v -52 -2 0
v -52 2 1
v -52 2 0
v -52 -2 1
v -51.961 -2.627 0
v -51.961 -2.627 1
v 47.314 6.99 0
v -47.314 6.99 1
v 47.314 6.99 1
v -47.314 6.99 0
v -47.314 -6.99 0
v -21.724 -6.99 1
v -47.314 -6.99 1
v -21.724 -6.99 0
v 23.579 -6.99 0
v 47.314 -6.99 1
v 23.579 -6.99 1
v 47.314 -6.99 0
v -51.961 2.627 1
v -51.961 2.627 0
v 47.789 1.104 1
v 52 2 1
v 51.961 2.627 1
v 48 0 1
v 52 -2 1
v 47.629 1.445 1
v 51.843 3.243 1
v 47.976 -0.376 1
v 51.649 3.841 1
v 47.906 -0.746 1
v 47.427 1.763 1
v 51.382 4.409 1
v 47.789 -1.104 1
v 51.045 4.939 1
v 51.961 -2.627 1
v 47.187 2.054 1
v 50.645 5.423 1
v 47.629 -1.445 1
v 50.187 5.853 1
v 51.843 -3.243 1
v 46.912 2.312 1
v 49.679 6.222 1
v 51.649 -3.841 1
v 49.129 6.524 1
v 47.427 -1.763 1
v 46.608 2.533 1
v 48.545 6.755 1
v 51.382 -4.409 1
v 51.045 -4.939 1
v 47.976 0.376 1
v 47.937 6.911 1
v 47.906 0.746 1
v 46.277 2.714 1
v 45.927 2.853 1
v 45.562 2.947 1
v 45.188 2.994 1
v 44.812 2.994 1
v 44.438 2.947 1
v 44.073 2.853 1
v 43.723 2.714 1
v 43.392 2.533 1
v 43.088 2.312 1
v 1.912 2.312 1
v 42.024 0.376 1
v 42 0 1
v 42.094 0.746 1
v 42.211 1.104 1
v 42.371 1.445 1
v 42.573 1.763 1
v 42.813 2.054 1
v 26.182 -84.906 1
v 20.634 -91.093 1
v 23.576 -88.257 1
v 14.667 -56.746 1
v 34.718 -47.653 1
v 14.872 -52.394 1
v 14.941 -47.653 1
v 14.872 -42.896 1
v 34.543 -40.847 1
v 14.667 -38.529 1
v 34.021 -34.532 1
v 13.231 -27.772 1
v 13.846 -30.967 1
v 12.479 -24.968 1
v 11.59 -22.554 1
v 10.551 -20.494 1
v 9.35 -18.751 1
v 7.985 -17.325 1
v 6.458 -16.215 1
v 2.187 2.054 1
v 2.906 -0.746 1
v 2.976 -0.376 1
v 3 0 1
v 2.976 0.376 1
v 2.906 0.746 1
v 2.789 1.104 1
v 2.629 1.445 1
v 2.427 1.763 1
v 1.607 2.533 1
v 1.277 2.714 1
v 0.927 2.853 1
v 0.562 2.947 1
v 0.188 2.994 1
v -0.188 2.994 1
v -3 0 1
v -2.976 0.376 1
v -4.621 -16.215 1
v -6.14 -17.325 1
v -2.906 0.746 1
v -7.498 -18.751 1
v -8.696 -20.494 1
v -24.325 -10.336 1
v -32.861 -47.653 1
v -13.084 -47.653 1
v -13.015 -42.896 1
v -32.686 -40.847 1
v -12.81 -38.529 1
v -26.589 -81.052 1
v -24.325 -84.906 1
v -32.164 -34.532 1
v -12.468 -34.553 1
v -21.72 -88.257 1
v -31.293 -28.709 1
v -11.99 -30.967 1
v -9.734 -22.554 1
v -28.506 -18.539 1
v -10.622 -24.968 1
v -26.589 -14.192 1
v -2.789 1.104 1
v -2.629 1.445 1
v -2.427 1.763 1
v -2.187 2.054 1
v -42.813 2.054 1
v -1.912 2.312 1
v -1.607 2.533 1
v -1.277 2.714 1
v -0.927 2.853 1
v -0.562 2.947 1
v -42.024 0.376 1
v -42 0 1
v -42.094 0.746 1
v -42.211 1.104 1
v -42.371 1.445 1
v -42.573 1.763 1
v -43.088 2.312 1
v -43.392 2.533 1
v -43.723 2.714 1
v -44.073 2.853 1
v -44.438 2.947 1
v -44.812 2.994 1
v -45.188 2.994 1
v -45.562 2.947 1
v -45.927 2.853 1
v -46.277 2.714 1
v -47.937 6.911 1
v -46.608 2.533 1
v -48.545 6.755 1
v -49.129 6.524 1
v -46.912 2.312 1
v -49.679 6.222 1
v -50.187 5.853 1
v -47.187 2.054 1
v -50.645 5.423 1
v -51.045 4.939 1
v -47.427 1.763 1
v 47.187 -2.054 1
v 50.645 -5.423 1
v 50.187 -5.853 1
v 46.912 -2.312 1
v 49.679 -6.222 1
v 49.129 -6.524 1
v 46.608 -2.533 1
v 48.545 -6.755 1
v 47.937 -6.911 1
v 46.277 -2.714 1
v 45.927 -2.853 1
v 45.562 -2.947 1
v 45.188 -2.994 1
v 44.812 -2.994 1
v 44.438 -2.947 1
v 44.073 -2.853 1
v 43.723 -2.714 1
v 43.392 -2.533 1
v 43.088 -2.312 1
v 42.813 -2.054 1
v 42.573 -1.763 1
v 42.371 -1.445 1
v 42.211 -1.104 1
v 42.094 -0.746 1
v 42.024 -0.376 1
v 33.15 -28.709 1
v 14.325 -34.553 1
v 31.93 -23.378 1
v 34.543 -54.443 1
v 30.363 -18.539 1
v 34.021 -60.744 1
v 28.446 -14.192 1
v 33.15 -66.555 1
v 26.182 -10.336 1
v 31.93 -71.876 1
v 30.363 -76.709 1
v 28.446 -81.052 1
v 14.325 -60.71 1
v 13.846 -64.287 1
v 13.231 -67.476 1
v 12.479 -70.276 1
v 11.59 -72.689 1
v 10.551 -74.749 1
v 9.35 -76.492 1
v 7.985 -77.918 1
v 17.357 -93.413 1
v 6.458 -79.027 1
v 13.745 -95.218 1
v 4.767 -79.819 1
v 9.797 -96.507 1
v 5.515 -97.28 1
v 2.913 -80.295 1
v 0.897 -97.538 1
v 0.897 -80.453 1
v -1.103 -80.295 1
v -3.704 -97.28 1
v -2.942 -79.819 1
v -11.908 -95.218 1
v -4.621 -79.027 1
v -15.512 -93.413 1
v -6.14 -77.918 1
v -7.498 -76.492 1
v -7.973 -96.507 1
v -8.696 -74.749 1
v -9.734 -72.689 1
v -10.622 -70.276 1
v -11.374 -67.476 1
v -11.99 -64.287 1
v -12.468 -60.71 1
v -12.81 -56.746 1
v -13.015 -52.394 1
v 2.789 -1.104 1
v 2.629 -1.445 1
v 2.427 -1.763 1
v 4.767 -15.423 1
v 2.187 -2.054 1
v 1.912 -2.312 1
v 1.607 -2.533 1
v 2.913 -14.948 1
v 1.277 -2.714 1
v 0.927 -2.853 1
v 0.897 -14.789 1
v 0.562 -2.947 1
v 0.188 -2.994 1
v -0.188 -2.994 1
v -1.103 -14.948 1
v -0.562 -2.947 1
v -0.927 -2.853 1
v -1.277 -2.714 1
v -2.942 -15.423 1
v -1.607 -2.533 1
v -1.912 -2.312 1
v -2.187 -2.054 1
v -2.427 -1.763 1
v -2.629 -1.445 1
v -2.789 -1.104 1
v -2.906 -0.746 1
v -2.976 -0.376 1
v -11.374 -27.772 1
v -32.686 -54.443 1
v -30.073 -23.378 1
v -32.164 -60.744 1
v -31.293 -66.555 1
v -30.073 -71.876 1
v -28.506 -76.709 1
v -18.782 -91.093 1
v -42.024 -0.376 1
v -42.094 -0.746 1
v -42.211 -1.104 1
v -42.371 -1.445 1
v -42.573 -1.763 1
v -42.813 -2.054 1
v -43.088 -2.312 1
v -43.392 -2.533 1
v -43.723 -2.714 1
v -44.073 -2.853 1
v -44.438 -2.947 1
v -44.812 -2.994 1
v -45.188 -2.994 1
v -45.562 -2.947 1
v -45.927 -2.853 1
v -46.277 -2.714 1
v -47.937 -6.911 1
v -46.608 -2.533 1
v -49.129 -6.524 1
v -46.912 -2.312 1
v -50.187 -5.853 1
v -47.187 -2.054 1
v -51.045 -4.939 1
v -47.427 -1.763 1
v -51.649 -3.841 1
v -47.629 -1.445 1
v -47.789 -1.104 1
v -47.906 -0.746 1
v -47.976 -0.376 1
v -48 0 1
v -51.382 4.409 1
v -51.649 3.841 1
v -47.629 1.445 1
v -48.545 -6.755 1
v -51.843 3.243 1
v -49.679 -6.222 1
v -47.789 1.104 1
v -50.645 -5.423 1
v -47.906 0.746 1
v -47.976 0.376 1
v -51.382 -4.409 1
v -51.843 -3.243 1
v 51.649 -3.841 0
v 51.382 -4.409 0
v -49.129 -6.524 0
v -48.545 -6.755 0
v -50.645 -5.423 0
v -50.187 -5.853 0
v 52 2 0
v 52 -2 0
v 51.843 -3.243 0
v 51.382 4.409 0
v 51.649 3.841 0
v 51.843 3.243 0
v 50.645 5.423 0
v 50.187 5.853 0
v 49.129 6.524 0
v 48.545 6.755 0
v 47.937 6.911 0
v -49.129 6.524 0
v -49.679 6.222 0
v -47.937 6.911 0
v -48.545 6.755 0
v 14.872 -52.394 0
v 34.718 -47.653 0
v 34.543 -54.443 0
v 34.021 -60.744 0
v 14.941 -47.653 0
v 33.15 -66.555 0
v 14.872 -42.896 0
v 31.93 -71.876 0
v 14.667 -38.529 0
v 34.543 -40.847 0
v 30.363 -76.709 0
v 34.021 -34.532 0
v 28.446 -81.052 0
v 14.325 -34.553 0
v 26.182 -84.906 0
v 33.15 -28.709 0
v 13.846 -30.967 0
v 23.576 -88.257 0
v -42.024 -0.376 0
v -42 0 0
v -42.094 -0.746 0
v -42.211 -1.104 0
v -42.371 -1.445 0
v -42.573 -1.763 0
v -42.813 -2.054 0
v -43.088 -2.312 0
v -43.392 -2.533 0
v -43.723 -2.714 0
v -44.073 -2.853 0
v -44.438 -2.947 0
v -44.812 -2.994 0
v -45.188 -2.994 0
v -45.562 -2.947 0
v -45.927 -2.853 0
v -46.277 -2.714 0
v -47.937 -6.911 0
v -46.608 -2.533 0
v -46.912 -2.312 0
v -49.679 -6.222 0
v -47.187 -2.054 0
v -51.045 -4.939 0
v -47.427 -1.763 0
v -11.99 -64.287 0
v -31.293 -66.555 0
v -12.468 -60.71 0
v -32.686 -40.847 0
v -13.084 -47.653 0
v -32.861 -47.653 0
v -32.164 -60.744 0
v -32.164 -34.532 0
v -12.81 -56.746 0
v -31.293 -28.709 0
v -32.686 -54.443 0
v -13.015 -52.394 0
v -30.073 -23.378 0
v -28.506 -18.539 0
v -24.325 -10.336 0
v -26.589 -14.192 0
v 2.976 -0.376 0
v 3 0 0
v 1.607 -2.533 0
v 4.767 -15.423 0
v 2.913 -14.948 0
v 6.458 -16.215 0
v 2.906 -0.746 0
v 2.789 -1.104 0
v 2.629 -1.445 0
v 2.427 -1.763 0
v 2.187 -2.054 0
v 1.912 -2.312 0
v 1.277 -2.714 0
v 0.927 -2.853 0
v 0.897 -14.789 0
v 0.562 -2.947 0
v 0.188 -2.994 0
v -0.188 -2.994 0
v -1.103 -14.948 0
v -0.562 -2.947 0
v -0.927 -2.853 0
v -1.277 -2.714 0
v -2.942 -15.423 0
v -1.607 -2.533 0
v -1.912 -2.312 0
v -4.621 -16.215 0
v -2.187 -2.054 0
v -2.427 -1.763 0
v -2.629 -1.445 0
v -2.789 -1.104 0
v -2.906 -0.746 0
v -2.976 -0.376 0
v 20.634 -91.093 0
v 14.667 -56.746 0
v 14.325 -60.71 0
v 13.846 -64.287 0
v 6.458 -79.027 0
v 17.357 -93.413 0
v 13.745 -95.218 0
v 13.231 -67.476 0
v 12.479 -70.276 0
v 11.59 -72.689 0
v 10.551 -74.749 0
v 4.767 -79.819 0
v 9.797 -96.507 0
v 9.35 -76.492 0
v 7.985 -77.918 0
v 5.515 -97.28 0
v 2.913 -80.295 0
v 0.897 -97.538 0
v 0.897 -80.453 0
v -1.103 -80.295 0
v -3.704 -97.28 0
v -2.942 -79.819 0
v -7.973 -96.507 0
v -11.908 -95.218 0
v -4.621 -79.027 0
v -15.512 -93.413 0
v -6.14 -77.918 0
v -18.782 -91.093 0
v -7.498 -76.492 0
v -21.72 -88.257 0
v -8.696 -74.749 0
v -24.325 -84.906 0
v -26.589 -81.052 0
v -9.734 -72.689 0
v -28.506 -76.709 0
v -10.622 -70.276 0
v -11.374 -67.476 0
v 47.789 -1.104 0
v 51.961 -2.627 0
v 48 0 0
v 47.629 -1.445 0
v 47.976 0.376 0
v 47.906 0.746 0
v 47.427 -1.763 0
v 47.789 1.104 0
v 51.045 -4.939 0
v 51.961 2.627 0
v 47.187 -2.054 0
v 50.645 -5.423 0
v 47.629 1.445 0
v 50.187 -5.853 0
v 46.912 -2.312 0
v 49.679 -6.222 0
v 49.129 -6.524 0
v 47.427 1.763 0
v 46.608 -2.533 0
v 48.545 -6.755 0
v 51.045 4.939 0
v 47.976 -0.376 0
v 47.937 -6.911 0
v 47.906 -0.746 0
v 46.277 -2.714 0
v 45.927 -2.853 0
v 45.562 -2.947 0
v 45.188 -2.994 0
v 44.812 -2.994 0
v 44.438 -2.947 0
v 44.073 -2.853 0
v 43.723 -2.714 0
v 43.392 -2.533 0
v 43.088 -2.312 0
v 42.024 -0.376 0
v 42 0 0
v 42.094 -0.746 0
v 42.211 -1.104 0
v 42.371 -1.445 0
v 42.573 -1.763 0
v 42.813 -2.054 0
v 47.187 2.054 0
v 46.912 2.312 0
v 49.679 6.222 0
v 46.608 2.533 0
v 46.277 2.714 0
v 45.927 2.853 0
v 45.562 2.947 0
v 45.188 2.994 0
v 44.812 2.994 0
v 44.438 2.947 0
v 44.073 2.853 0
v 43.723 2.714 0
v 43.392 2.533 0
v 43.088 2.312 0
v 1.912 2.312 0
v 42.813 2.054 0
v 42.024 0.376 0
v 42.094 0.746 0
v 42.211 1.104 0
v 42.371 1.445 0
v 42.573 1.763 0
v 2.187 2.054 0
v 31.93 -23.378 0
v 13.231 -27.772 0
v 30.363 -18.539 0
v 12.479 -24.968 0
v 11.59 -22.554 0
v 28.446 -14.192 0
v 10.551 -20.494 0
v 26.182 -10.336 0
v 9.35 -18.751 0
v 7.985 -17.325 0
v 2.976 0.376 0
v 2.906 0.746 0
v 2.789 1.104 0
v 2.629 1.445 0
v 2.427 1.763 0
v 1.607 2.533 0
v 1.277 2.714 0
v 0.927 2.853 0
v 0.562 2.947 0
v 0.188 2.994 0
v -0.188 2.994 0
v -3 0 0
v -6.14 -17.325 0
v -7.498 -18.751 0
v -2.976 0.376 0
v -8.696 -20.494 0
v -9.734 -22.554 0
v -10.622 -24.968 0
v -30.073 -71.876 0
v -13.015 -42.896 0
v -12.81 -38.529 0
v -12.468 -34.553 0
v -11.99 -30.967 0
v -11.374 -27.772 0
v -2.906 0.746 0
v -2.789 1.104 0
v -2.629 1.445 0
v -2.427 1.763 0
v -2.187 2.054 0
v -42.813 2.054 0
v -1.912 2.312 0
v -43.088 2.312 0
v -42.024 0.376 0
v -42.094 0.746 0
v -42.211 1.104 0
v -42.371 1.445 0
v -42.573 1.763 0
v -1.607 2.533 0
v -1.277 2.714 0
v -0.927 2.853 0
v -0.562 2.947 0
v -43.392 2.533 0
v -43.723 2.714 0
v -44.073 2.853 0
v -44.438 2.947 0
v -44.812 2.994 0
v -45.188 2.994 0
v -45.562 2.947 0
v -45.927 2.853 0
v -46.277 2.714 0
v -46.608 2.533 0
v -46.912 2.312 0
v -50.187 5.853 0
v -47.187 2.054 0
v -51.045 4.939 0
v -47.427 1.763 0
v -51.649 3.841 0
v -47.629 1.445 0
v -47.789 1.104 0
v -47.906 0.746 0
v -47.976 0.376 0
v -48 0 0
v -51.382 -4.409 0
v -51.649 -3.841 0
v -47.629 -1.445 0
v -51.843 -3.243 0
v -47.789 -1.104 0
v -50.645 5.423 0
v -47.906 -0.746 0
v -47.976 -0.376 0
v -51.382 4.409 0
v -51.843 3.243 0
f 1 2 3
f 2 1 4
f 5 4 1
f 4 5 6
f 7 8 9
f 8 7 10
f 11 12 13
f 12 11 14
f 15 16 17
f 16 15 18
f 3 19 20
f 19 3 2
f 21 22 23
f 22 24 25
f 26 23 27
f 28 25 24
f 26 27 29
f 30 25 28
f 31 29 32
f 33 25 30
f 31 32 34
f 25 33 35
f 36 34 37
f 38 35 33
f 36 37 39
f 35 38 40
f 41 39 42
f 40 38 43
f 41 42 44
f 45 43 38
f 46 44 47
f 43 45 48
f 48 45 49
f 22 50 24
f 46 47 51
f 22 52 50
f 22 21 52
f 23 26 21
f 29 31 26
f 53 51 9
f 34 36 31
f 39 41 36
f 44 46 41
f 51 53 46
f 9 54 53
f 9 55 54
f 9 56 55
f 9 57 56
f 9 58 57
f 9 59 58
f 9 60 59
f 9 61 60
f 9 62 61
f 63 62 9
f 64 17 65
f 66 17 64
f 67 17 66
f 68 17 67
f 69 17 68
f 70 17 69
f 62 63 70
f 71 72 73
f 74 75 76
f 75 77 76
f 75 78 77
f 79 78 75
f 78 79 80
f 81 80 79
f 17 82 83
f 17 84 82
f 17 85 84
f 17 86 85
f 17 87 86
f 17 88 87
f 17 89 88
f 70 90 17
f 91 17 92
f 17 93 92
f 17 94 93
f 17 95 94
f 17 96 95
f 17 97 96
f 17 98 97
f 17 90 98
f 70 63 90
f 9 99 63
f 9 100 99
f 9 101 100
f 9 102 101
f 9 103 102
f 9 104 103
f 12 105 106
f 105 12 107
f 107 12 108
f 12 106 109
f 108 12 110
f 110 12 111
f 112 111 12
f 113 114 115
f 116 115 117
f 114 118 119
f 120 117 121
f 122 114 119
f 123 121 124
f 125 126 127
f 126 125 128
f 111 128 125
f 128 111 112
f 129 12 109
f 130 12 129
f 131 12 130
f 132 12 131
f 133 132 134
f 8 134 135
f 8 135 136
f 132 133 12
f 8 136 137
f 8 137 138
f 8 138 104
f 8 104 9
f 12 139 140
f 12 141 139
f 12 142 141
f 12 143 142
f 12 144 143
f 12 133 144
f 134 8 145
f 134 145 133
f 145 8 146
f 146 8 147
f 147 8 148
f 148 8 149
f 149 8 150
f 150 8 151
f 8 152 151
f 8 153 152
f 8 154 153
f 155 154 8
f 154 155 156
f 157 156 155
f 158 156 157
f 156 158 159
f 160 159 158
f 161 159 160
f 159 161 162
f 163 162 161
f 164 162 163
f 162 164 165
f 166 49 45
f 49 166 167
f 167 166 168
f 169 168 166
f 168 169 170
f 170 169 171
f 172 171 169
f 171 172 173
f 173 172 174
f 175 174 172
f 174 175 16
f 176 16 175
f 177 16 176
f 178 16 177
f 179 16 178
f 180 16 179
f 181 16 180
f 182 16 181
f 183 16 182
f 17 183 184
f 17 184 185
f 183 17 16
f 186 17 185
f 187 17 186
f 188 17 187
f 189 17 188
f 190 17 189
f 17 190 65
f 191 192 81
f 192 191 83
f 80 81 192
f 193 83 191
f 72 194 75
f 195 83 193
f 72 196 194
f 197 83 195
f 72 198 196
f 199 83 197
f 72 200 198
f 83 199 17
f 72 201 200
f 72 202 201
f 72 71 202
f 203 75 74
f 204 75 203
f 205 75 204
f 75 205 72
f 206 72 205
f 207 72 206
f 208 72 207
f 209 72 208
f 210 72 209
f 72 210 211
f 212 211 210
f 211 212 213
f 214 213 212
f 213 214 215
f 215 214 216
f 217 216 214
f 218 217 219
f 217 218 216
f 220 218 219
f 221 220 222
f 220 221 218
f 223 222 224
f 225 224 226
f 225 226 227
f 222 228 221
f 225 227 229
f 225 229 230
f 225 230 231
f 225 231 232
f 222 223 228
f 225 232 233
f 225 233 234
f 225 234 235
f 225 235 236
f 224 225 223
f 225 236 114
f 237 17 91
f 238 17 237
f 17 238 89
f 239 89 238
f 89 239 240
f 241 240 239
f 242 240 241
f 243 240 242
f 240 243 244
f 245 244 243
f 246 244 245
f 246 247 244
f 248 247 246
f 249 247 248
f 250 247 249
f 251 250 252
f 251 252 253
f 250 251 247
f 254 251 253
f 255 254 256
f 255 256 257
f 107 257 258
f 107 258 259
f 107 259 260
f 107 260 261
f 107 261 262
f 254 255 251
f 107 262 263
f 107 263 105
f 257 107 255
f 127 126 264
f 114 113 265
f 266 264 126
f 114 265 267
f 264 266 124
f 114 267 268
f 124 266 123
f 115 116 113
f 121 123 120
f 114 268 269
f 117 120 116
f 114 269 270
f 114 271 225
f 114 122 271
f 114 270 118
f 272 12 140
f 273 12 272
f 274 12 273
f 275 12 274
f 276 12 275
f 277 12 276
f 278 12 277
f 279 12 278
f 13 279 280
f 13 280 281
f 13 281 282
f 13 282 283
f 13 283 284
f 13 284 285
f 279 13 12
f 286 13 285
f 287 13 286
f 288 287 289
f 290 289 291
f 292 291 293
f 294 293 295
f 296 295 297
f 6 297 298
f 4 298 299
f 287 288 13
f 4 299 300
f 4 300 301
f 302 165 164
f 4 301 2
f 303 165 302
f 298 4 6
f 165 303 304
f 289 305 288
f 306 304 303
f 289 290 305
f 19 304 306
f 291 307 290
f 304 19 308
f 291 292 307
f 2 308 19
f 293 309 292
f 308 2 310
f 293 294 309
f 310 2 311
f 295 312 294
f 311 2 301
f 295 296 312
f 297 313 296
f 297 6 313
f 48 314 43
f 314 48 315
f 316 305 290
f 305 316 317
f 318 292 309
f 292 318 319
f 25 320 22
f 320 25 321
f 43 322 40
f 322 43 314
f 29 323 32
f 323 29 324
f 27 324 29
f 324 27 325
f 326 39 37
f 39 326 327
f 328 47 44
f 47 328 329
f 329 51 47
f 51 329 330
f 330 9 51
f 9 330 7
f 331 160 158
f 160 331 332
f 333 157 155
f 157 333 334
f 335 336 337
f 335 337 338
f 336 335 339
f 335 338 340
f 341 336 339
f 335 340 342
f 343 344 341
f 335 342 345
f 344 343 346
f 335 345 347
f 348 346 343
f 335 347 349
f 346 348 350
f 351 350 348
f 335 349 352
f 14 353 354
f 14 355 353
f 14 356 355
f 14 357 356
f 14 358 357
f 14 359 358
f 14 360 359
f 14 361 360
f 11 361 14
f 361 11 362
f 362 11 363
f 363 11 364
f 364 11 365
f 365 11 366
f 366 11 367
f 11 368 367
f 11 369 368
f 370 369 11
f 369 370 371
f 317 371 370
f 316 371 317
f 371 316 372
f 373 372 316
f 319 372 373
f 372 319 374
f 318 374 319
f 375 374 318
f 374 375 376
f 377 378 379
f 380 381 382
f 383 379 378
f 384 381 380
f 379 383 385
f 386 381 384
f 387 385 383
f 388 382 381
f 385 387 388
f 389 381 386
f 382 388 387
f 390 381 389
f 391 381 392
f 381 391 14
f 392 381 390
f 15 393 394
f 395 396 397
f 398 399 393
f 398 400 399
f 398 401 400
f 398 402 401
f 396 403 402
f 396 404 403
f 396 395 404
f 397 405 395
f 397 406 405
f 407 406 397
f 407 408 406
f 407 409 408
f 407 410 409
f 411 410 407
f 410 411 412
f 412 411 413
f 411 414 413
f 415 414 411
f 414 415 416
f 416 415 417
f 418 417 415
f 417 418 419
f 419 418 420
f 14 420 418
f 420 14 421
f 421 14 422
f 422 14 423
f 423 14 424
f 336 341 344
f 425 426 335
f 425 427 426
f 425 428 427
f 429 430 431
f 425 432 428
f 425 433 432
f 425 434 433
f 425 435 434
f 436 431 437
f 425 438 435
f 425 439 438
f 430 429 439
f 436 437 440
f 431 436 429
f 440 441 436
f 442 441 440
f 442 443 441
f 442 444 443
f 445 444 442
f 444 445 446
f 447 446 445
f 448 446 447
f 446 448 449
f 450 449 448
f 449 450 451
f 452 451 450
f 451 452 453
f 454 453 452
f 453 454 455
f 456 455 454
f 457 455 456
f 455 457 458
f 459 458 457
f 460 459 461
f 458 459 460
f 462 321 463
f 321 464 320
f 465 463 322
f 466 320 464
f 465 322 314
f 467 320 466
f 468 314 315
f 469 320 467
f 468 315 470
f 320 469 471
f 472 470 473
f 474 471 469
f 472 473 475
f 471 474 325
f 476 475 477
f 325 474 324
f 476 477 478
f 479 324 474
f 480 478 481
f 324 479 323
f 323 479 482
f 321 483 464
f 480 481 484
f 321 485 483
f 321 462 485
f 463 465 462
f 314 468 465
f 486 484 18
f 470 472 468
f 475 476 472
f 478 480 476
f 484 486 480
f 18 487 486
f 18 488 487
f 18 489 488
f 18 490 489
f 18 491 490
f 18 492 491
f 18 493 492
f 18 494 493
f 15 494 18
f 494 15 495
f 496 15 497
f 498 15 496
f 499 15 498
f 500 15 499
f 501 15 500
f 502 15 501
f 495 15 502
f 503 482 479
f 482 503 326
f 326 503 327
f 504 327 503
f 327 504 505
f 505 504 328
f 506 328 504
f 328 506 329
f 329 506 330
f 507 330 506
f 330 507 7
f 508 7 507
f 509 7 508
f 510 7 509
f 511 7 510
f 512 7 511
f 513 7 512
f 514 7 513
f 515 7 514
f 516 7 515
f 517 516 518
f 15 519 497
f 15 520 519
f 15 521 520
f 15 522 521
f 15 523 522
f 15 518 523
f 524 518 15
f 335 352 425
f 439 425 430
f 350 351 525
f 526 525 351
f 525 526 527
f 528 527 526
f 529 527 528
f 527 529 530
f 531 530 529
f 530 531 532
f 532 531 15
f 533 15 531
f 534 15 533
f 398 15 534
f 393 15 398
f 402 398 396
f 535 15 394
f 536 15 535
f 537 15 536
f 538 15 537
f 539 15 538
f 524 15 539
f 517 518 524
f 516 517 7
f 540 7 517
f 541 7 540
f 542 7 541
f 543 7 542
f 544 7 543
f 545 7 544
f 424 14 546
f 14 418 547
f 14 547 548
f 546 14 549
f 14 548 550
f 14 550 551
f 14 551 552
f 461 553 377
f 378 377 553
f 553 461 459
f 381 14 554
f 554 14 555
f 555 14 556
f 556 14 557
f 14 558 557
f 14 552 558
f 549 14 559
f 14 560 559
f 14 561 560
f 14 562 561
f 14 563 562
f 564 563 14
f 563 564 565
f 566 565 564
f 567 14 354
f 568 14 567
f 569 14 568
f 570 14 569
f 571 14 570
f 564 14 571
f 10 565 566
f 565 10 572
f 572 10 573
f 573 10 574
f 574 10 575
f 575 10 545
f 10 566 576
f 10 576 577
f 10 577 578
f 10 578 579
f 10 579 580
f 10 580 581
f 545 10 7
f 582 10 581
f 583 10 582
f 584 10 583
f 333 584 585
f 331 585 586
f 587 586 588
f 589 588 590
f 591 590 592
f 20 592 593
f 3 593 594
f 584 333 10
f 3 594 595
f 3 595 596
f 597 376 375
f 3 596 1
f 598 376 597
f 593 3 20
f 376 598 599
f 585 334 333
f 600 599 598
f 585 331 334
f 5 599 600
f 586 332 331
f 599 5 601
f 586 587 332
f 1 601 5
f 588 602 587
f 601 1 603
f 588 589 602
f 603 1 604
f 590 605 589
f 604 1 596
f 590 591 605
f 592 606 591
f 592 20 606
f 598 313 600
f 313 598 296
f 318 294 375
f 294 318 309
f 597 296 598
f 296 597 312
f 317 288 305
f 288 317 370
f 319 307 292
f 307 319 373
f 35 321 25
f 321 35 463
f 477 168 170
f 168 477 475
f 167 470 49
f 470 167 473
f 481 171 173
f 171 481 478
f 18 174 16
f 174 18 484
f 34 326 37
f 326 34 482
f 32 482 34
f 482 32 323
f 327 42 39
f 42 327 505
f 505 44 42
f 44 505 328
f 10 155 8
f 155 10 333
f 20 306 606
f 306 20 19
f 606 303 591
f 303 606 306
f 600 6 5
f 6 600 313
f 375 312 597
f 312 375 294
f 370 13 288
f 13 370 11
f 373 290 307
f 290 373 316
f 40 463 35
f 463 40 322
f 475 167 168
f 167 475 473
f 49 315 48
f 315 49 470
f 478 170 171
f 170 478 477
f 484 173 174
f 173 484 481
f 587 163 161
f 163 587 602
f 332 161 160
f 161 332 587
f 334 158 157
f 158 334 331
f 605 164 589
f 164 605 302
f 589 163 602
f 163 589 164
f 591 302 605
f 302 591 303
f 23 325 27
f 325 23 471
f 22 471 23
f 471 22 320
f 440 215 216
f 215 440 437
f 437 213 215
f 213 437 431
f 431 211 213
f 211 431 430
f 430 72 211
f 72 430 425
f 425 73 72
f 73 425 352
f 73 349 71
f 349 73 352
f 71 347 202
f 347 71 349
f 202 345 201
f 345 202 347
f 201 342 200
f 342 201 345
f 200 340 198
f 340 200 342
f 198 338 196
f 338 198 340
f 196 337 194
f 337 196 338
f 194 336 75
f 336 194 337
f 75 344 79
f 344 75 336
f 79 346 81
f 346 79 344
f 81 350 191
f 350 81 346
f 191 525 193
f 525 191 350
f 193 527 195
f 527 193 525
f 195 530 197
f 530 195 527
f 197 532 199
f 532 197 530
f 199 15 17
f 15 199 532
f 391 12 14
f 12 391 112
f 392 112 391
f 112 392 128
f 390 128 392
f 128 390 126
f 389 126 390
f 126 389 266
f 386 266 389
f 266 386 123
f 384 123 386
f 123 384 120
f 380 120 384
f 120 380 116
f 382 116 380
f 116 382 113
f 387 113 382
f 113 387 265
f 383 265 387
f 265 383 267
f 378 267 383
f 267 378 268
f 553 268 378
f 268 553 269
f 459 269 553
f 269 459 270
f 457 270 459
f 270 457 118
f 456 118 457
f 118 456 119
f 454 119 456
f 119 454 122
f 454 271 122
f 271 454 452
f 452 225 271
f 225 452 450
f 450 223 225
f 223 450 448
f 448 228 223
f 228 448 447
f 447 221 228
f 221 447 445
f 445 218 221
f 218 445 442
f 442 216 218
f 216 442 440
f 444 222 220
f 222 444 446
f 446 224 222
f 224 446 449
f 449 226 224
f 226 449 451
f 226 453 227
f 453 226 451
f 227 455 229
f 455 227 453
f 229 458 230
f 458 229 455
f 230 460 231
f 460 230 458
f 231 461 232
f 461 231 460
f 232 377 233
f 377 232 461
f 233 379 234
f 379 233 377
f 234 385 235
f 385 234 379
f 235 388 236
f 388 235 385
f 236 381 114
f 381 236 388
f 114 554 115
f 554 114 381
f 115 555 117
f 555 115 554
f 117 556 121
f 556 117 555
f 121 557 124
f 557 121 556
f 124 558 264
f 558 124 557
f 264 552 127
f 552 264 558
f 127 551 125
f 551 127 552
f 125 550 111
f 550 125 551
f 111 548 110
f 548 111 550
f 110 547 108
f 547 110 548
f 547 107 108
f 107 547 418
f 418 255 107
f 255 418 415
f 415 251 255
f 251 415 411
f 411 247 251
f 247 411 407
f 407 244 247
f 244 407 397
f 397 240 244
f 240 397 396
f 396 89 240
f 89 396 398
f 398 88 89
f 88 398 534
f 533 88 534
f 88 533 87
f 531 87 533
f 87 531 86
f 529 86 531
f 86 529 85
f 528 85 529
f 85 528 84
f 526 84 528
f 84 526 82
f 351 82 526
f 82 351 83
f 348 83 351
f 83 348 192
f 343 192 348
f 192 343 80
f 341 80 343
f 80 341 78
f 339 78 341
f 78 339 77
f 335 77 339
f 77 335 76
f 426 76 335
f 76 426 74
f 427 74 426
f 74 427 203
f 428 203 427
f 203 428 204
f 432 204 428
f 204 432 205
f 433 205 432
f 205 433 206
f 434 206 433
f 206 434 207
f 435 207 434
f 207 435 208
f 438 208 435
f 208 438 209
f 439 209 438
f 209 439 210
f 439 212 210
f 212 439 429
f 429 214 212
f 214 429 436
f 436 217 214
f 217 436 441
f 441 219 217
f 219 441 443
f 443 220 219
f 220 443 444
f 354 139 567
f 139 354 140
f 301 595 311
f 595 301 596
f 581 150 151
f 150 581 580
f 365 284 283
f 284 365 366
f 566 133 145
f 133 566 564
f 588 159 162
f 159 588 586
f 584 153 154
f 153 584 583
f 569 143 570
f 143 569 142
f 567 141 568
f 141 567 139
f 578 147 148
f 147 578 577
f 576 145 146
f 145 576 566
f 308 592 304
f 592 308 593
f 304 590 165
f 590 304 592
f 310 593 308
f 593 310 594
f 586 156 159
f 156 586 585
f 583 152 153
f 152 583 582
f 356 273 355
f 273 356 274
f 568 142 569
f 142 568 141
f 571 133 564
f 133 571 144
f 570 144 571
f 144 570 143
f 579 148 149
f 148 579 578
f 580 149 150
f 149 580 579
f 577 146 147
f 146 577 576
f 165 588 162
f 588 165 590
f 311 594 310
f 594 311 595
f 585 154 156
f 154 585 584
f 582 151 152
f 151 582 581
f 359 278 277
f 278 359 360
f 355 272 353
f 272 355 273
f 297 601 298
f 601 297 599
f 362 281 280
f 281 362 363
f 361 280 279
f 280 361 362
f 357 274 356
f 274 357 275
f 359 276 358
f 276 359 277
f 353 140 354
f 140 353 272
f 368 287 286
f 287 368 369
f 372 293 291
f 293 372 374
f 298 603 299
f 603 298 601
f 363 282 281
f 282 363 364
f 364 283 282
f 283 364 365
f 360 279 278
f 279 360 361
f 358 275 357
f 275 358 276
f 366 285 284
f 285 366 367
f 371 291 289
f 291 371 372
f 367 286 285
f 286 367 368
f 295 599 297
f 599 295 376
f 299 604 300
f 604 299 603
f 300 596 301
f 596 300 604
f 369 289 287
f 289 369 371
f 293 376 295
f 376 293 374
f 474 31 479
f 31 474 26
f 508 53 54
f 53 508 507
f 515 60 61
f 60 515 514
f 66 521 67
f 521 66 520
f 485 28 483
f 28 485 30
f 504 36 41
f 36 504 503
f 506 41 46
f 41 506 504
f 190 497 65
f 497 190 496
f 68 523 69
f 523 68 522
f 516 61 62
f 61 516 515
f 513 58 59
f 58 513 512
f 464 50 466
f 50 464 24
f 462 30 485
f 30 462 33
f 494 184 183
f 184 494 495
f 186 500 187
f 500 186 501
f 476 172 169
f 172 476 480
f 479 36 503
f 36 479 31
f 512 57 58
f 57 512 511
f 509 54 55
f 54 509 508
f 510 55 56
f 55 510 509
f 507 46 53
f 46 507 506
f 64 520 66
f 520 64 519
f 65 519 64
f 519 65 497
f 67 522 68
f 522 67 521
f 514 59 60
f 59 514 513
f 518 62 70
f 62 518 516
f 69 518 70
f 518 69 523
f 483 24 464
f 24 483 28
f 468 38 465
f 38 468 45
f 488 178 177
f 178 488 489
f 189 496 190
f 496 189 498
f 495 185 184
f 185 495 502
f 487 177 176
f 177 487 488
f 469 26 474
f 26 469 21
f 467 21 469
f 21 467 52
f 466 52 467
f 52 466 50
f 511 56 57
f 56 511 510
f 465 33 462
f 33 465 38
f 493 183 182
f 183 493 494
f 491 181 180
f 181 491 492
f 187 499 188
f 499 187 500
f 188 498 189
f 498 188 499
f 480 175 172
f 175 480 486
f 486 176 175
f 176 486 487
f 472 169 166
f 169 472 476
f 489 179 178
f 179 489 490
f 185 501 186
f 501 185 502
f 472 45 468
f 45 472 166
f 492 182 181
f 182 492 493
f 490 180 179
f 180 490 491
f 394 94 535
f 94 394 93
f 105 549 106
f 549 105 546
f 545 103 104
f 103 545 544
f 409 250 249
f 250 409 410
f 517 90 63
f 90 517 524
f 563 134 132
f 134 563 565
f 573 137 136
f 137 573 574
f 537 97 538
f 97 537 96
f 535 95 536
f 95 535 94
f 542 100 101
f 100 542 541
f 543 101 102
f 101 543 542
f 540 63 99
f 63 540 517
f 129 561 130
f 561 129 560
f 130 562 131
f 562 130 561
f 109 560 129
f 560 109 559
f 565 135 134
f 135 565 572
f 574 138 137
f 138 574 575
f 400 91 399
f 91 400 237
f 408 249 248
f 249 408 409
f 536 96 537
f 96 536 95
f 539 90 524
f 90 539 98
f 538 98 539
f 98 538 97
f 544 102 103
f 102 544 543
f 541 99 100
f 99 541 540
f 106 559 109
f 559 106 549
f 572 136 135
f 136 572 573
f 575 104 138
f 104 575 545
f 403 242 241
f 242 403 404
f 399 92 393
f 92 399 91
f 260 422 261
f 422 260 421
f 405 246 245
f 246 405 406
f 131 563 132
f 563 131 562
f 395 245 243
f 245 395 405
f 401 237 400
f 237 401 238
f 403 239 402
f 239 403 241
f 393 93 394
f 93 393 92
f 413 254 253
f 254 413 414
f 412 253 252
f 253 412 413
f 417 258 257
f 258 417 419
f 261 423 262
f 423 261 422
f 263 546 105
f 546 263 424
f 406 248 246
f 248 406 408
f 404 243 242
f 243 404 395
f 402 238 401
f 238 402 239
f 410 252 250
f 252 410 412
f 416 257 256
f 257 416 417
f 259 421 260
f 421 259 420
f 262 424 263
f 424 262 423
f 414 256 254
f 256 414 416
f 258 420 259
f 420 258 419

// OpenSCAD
$fn = 50;


difference() {
	union() {
		translate(v = [0, 0, 0]) {
			rotate(a = [0, 0, 0]) {
				hull() {
					translate(v = [-47.0000000000, 2.0000000000, 0]) {
						rotate(a = [0, 0, 0]) {
							translate(v = [0, 0, 0]) {
								rotate(a = [0, 0, 0]) {
									cylinder(h = 1, r = 5);
								}
							}
						}
					}
					translate(v = [47.0000000000, 2.0000000000, 0]) {
						rotate(a = [0, 0, 0]) {
							translate(v = [0, 0, 0]) {
								rotate(a = [0, 0, 0]) {
									cylinder(h = 1, r = 5);
								}
							}
						}
					}
					translate(v = [-47.0000000000, -2.0000000000, 0]) {
						rotate(a = [0, 0, 0]) {
							translate(v = [0, 0, 0]) {
								rotate(a = [0, 0, 0]) {
									cylinder(h = 1, r = 5);
								}
							}
						}
					}
					translate(v = [47.0000000000, -2.0000000000, 0]) {
						rotate(a = [0, 0, 0]) {
							translate(v = [0, 0, 0]) {
								rotate(a = [0, 0, 0]) {
									cylinder(h = 1, r = 5);
								}
							}
						}
					}
				}
			}
		}
		translate(v = [0, 0, 0]) {
			rotate(a = [0, 0, 0]) {
				linear_extrude(height = 1) {
					text(font = "DejaVu Sans Mono:style=Bold", halign = "center", size = 95, text = "O", valign = "top");
				}
			}
		}
	}
	union() {
		translate(v = [-45.0000000000, 0.0000000000, -125.0000000000]) {
			rotate(a = [0, 0, 0]) {
				cylinder(h = 250, r = 3.0000000000);
			}
		}
		translate(v = [45.0000000000, 0.0000000000, -125.0000000000]) {
			rotate(a = [0, 0, 0]) {
				cylinder(h = 250, r = 3.0000000000);
			}
		}
		translate(v = [45.0000000000, 0.0000000000, -125.0000000000]) {
			rotate(a = [0, 0, 0]) {
				cylinder(h = 250, r = 3.0000000000);
			}
		}
		translate(v = [0, 0, -125.0000000000]) {
			rotate(a = [0, 0, 0]) {
				cylinder(h = 250, r = 3.0000000000);
			}
		}
	}
}
